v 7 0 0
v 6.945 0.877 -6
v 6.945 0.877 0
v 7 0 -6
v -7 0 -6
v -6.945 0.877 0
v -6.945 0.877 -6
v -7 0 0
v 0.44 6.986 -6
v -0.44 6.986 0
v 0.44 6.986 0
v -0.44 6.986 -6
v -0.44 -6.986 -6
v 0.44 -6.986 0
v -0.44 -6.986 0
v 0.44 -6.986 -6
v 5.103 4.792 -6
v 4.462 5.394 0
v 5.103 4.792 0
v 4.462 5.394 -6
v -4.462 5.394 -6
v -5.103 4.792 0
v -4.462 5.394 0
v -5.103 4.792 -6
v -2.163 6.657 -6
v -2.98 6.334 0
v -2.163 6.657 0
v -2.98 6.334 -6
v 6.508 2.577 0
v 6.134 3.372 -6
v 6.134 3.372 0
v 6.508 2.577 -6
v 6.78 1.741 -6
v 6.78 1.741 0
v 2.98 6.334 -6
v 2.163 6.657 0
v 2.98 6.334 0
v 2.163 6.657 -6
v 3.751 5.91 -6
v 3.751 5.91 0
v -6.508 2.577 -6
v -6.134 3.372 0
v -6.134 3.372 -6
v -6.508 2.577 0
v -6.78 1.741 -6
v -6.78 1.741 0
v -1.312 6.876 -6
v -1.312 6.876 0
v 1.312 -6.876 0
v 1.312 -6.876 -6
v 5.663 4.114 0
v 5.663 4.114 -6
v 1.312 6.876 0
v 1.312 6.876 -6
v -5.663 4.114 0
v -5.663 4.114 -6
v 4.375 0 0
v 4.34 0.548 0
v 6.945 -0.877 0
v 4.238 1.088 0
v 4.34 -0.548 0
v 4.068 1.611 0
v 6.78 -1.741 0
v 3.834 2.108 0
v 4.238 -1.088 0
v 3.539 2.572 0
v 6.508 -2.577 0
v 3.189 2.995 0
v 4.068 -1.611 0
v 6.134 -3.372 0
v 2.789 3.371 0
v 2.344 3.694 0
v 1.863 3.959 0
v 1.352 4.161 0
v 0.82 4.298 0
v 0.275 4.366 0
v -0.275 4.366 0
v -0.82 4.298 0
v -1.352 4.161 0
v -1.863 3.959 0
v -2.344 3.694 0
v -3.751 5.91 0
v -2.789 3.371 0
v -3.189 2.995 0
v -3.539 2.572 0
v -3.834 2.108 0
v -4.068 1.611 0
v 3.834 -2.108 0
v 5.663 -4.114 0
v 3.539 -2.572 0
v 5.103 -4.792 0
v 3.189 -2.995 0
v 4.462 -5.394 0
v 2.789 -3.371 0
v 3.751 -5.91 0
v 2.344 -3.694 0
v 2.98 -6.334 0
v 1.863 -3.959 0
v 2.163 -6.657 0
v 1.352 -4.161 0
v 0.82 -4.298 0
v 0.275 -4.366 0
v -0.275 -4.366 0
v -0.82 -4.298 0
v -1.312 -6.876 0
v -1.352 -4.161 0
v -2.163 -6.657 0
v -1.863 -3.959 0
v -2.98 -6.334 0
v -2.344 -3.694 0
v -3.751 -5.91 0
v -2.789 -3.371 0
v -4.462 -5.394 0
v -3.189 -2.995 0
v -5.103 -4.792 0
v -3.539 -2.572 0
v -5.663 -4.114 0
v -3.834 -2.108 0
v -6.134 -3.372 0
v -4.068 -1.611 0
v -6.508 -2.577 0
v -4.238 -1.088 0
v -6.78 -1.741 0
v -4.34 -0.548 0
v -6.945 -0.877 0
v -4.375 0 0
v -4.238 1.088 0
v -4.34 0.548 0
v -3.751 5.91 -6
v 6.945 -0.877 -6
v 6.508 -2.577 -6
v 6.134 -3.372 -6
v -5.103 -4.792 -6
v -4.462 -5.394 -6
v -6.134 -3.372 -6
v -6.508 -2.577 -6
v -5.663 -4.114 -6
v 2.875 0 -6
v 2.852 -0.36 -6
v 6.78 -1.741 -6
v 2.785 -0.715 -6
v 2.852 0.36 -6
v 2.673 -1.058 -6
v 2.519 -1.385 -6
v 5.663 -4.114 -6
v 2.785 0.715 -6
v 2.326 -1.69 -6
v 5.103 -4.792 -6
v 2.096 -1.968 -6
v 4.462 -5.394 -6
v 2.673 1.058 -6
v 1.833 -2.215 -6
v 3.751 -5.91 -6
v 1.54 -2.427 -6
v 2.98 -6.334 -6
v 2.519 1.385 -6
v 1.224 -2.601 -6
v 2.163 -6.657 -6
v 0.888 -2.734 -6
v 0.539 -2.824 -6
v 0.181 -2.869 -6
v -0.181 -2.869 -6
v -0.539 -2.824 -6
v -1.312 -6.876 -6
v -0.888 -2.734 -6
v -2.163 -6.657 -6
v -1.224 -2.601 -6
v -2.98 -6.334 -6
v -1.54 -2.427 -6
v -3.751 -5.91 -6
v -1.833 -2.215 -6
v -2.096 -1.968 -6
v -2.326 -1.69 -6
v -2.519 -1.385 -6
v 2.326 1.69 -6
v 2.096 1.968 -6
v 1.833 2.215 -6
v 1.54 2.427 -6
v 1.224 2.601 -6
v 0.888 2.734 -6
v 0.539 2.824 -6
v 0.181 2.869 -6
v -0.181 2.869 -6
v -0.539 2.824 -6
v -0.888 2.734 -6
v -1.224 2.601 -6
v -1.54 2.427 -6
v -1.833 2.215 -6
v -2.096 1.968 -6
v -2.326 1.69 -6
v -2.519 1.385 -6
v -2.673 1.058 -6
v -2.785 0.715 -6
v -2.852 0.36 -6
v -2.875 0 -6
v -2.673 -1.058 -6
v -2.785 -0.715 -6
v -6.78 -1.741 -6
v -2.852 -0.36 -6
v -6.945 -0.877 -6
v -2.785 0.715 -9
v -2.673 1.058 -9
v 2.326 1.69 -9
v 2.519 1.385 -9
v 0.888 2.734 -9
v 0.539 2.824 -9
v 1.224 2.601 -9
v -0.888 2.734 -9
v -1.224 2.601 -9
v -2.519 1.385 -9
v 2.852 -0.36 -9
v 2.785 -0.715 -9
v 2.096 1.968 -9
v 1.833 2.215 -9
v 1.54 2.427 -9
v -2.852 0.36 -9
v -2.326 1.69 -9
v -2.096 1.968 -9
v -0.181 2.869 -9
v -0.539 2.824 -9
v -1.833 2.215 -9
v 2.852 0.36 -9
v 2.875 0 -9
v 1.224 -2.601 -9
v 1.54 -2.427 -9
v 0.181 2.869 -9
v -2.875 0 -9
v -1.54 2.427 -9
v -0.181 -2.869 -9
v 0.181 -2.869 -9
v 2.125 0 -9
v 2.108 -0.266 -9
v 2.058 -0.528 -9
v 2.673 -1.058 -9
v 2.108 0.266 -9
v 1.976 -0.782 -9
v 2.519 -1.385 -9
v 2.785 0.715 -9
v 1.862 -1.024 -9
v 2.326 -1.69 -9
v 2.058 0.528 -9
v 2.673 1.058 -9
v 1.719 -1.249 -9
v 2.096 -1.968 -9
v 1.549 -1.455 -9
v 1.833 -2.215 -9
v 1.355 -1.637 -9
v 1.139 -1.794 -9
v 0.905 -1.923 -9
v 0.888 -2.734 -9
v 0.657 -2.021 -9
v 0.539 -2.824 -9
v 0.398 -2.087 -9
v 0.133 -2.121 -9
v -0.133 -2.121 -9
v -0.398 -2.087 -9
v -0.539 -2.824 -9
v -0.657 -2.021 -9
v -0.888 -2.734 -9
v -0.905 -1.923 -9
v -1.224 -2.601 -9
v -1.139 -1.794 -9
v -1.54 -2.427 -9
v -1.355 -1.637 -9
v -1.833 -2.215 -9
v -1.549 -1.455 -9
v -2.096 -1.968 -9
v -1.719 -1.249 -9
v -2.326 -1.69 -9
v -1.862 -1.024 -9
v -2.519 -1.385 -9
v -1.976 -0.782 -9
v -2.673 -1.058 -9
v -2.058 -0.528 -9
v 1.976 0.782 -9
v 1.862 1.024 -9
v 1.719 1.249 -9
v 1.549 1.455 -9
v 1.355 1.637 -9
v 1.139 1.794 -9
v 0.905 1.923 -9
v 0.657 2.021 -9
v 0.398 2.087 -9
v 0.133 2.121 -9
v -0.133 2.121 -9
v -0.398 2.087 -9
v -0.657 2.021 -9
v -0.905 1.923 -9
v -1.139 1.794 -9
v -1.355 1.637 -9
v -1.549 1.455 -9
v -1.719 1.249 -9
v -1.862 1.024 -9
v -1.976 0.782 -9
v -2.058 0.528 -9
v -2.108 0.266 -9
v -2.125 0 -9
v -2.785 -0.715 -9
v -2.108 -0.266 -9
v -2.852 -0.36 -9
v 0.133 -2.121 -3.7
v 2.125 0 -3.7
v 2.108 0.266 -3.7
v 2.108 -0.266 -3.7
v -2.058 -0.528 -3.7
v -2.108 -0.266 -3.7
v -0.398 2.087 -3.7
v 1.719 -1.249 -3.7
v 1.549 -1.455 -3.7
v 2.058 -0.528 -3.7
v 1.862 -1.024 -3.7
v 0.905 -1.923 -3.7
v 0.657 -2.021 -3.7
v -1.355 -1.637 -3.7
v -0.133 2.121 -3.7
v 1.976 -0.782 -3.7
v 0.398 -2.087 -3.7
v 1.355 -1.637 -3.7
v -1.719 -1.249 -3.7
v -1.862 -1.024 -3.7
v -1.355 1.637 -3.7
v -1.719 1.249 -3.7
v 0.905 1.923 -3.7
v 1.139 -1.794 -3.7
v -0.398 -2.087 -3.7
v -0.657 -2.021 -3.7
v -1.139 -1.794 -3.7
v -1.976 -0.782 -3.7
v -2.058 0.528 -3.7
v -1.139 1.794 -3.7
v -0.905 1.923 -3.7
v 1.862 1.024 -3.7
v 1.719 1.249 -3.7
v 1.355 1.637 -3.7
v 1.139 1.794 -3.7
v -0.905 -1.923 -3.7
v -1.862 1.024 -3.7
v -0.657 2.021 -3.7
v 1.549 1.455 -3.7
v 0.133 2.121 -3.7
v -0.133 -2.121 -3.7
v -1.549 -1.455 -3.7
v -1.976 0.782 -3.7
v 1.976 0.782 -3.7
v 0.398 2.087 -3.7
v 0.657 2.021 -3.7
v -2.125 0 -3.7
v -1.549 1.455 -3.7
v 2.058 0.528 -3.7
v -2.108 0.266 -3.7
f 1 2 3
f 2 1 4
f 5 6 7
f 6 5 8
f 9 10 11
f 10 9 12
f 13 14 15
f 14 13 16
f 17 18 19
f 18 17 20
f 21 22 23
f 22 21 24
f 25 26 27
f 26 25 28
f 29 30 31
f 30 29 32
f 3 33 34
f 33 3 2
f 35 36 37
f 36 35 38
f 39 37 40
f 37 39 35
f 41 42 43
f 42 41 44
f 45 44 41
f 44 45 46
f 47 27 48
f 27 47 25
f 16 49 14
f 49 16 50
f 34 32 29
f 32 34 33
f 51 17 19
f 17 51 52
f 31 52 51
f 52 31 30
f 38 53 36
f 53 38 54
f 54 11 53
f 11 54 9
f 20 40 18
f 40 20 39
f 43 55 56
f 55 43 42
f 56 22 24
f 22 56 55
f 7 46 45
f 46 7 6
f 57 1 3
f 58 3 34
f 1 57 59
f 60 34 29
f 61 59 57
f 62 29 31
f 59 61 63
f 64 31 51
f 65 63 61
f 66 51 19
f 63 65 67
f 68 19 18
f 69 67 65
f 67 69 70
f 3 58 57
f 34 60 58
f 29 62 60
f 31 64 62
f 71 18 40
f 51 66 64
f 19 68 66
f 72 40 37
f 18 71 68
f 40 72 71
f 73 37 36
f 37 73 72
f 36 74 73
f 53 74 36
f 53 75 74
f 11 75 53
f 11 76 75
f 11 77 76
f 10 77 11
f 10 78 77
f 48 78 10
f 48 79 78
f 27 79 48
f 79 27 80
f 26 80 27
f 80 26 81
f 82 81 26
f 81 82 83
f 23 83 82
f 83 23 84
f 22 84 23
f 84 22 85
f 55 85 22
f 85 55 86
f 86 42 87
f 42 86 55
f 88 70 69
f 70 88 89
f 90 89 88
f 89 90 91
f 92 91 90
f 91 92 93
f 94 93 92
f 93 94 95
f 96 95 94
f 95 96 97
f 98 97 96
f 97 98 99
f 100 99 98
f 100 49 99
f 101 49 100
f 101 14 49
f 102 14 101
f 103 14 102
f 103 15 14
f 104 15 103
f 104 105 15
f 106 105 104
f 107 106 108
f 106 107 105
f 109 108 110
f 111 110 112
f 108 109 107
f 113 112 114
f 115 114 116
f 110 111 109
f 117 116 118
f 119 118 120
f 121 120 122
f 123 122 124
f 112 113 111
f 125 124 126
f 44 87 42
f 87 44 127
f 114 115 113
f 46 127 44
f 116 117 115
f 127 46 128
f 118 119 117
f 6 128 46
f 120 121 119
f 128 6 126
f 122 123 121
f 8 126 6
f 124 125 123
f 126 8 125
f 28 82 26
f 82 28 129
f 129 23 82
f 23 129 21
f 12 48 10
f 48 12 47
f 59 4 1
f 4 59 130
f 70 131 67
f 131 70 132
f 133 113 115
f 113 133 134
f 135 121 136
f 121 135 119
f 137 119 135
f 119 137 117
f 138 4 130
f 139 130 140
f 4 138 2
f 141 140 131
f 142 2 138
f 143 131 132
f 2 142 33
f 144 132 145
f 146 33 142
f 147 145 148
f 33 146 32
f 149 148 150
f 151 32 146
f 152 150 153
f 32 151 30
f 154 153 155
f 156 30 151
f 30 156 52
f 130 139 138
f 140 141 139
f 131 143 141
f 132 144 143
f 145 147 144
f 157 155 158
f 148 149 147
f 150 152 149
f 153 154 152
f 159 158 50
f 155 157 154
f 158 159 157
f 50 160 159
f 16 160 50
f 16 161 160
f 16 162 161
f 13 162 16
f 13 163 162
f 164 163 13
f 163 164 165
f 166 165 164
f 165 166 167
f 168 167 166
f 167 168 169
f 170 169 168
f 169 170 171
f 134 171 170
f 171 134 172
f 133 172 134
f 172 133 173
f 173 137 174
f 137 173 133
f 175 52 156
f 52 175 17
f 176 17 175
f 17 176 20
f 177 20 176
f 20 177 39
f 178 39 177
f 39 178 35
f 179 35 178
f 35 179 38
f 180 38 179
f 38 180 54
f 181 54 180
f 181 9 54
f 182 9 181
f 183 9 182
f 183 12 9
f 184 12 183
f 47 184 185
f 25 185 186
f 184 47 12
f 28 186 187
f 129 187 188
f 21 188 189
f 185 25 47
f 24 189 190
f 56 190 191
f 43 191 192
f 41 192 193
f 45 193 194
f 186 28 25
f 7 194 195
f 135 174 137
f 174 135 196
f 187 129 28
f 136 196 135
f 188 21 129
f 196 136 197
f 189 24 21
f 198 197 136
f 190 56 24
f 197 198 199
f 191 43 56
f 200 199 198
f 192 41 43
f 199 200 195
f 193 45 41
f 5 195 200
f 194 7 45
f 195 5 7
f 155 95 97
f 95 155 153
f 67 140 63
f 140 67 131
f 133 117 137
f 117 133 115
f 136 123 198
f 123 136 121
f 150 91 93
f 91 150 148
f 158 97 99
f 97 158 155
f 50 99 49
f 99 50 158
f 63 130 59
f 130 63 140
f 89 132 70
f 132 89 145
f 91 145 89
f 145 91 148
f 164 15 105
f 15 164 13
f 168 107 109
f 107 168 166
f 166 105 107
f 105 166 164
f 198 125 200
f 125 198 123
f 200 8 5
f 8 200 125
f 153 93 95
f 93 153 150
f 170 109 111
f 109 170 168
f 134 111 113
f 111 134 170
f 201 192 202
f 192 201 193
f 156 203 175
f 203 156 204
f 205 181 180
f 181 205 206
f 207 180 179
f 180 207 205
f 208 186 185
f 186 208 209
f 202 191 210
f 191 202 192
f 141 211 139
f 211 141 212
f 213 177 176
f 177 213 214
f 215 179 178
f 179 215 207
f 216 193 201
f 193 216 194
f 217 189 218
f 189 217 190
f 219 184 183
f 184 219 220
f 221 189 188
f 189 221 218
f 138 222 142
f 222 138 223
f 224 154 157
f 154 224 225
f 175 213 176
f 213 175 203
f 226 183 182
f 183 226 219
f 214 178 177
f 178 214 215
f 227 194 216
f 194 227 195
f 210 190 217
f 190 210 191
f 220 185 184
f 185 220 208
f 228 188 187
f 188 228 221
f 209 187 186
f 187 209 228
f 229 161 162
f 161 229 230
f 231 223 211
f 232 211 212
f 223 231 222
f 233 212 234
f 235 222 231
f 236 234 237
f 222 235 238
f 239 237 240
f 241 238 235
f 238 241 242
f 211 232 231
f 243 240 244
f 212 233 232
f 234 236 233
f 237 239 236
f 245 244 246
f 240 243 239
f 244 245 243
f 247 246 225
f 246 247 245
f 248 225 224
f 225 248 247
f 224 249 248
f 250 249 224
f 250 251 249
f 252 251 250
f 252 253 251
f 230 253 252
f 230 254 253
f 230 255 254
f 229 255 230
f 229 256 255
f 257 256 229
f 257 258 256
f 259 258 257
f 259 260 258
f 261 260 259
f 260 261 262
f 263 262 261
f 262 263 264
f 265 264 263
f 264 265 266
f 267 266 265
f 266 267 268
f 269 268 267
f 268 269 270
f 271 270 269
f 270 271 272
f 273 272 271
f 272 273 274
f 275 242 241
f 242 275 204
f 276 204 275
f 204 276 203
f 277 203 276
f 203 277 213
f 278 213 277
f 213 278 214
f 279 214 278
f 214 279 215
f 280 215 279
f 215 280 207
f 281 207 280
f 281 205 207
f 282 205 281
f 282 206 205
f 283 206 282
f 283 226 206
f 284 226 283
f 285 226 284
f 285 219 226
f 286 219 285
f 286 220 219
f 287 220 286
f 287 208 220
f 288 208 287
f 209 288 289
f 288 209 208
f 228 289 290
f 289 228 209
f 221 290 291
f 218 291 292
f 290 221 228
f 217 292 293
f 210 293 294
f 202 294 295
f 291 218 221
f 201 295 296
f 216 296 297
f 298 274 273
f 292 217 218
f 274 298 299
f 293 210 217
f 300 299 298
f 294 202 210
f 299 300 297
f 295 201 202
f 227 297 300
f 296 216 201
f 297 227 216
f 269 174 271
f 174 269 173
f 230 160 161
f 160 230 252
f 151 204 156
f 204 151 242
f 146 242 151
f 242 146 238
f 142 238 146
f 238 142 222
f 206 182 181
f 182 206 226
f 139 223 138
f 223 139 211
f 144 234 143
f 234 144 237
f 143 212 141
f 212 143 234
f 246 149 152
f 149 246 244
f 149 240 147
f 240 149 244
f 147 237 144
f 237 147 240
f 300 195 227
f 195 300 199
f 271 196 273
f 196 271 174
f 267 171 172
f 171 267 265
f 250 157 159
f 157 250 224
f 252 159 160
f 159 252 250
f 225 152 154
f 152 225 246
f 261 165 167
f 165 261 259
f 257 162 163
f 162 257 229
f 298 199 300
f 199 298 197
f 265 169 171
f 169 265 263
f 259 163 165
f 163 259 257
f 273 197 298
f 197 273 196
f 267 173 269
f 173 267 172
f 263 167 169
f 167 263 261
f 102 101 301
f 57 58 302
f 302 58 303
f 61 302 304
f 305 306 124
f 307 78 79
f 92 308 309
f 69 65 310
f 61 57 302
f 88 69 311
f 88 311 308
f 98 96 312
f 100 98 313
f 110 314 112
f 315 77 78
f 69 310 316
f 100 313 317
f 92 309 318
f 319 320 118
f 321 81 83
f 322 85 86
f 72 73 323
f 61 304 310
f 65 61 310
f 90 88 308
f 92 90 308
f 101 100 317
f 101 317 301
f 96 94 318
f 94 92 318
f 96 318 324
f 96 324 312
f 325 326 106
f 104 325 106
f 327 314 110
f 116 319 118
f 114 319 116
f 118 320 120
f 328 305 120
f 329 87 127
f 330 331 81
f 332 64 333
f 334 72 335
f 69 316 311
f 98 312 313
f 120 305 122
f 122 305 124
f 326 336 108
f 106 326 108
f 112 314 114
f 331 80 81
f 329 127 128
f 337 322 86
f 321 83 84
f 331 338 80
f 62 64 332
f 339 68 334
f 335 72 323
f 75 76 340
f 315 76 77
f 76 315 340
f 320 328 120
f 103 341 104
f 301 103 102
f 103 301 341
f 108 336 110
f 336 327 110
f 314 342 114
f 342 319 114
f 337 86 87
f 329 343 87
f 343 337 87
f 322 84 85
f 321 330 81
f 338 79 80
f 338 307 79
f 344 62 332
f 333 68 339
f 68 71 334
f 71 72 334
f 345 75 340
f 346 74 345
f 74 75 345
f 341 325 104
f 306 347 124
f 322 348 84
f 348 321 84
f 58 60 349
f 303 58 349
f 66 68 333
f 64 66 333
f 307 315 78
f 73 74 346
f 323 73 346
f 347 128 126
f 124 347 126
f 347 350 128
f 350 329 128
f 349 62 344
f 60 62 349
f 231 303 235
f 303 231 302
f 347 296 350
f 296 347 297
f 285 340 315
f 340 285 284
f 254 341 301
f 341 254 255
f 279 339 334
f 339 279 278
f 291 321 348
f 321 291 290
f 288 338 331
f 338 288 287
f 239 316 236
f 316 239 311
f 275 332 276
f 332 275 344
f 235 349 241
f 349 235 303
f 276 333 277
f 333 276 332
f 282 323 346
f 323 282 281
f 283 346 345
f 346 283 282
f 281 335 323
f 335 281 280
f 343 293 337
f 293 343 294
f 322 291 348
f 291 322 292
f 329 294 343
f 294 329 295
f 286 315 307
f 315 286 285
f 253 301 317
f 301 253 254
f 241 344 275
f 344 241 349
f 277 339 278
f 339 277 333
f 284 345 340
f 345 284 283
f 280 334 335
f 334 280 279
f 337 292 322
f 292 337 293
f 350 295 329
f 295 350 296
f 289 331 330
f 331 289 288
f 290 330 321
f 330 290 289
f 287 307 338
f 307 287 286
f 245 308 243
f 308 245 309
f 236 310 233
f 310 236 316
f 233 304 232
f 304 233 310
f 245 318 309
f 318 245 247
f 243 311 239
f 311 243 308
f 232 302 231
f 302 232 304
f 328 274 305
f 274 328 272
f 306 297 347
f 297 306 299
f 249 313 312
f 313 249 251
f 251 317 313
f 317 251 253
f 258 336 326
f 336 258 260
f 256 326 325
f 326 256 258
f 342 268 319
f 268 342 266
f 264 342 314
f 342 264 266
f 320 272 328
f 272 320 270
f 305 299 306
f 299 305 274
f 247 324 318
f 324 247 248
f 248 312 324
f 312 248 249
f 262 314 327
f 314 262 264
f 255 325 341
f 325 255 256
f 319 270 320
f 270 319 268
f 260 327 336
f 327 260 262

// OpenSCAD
$fn = 50;


difference() {
	union() {
		translate(v = [0, 0, -6.0000000000]) {
			cylinder(h = 6, r = 7.0000000000);
		}
		translate(v = [0, 0, -9.0000000000]) {
			cylinder(h = 9, r = 2.8750000000);
		}
	}
	union() {
		translate(v = [0, 0, 0]) {
			rotate(a = [0, 0, 0]) {
				difference() {
					union() {
						translate(v = [0, 0, -9.0000000000]) {
							cylinder(h = 9, r = 2.0000000000);
						}
						translate(v = [0, 0, -3.7000000000]) {
							cylinder(h = 3.7000000000, r1 = 2.1250000000, r2 = 4.3750000000);
						}
						translate(v = [0, 0, -9.0000000000]) {
							cylinder(h = 9, r = 2.1250000000);
						}
						translate(v = [0, 0, -9.0000000000]) {
							cylinder(h = 9, r = 2.0000000000);
						}
					}
					union();
				}
			}
		}
	}
}
